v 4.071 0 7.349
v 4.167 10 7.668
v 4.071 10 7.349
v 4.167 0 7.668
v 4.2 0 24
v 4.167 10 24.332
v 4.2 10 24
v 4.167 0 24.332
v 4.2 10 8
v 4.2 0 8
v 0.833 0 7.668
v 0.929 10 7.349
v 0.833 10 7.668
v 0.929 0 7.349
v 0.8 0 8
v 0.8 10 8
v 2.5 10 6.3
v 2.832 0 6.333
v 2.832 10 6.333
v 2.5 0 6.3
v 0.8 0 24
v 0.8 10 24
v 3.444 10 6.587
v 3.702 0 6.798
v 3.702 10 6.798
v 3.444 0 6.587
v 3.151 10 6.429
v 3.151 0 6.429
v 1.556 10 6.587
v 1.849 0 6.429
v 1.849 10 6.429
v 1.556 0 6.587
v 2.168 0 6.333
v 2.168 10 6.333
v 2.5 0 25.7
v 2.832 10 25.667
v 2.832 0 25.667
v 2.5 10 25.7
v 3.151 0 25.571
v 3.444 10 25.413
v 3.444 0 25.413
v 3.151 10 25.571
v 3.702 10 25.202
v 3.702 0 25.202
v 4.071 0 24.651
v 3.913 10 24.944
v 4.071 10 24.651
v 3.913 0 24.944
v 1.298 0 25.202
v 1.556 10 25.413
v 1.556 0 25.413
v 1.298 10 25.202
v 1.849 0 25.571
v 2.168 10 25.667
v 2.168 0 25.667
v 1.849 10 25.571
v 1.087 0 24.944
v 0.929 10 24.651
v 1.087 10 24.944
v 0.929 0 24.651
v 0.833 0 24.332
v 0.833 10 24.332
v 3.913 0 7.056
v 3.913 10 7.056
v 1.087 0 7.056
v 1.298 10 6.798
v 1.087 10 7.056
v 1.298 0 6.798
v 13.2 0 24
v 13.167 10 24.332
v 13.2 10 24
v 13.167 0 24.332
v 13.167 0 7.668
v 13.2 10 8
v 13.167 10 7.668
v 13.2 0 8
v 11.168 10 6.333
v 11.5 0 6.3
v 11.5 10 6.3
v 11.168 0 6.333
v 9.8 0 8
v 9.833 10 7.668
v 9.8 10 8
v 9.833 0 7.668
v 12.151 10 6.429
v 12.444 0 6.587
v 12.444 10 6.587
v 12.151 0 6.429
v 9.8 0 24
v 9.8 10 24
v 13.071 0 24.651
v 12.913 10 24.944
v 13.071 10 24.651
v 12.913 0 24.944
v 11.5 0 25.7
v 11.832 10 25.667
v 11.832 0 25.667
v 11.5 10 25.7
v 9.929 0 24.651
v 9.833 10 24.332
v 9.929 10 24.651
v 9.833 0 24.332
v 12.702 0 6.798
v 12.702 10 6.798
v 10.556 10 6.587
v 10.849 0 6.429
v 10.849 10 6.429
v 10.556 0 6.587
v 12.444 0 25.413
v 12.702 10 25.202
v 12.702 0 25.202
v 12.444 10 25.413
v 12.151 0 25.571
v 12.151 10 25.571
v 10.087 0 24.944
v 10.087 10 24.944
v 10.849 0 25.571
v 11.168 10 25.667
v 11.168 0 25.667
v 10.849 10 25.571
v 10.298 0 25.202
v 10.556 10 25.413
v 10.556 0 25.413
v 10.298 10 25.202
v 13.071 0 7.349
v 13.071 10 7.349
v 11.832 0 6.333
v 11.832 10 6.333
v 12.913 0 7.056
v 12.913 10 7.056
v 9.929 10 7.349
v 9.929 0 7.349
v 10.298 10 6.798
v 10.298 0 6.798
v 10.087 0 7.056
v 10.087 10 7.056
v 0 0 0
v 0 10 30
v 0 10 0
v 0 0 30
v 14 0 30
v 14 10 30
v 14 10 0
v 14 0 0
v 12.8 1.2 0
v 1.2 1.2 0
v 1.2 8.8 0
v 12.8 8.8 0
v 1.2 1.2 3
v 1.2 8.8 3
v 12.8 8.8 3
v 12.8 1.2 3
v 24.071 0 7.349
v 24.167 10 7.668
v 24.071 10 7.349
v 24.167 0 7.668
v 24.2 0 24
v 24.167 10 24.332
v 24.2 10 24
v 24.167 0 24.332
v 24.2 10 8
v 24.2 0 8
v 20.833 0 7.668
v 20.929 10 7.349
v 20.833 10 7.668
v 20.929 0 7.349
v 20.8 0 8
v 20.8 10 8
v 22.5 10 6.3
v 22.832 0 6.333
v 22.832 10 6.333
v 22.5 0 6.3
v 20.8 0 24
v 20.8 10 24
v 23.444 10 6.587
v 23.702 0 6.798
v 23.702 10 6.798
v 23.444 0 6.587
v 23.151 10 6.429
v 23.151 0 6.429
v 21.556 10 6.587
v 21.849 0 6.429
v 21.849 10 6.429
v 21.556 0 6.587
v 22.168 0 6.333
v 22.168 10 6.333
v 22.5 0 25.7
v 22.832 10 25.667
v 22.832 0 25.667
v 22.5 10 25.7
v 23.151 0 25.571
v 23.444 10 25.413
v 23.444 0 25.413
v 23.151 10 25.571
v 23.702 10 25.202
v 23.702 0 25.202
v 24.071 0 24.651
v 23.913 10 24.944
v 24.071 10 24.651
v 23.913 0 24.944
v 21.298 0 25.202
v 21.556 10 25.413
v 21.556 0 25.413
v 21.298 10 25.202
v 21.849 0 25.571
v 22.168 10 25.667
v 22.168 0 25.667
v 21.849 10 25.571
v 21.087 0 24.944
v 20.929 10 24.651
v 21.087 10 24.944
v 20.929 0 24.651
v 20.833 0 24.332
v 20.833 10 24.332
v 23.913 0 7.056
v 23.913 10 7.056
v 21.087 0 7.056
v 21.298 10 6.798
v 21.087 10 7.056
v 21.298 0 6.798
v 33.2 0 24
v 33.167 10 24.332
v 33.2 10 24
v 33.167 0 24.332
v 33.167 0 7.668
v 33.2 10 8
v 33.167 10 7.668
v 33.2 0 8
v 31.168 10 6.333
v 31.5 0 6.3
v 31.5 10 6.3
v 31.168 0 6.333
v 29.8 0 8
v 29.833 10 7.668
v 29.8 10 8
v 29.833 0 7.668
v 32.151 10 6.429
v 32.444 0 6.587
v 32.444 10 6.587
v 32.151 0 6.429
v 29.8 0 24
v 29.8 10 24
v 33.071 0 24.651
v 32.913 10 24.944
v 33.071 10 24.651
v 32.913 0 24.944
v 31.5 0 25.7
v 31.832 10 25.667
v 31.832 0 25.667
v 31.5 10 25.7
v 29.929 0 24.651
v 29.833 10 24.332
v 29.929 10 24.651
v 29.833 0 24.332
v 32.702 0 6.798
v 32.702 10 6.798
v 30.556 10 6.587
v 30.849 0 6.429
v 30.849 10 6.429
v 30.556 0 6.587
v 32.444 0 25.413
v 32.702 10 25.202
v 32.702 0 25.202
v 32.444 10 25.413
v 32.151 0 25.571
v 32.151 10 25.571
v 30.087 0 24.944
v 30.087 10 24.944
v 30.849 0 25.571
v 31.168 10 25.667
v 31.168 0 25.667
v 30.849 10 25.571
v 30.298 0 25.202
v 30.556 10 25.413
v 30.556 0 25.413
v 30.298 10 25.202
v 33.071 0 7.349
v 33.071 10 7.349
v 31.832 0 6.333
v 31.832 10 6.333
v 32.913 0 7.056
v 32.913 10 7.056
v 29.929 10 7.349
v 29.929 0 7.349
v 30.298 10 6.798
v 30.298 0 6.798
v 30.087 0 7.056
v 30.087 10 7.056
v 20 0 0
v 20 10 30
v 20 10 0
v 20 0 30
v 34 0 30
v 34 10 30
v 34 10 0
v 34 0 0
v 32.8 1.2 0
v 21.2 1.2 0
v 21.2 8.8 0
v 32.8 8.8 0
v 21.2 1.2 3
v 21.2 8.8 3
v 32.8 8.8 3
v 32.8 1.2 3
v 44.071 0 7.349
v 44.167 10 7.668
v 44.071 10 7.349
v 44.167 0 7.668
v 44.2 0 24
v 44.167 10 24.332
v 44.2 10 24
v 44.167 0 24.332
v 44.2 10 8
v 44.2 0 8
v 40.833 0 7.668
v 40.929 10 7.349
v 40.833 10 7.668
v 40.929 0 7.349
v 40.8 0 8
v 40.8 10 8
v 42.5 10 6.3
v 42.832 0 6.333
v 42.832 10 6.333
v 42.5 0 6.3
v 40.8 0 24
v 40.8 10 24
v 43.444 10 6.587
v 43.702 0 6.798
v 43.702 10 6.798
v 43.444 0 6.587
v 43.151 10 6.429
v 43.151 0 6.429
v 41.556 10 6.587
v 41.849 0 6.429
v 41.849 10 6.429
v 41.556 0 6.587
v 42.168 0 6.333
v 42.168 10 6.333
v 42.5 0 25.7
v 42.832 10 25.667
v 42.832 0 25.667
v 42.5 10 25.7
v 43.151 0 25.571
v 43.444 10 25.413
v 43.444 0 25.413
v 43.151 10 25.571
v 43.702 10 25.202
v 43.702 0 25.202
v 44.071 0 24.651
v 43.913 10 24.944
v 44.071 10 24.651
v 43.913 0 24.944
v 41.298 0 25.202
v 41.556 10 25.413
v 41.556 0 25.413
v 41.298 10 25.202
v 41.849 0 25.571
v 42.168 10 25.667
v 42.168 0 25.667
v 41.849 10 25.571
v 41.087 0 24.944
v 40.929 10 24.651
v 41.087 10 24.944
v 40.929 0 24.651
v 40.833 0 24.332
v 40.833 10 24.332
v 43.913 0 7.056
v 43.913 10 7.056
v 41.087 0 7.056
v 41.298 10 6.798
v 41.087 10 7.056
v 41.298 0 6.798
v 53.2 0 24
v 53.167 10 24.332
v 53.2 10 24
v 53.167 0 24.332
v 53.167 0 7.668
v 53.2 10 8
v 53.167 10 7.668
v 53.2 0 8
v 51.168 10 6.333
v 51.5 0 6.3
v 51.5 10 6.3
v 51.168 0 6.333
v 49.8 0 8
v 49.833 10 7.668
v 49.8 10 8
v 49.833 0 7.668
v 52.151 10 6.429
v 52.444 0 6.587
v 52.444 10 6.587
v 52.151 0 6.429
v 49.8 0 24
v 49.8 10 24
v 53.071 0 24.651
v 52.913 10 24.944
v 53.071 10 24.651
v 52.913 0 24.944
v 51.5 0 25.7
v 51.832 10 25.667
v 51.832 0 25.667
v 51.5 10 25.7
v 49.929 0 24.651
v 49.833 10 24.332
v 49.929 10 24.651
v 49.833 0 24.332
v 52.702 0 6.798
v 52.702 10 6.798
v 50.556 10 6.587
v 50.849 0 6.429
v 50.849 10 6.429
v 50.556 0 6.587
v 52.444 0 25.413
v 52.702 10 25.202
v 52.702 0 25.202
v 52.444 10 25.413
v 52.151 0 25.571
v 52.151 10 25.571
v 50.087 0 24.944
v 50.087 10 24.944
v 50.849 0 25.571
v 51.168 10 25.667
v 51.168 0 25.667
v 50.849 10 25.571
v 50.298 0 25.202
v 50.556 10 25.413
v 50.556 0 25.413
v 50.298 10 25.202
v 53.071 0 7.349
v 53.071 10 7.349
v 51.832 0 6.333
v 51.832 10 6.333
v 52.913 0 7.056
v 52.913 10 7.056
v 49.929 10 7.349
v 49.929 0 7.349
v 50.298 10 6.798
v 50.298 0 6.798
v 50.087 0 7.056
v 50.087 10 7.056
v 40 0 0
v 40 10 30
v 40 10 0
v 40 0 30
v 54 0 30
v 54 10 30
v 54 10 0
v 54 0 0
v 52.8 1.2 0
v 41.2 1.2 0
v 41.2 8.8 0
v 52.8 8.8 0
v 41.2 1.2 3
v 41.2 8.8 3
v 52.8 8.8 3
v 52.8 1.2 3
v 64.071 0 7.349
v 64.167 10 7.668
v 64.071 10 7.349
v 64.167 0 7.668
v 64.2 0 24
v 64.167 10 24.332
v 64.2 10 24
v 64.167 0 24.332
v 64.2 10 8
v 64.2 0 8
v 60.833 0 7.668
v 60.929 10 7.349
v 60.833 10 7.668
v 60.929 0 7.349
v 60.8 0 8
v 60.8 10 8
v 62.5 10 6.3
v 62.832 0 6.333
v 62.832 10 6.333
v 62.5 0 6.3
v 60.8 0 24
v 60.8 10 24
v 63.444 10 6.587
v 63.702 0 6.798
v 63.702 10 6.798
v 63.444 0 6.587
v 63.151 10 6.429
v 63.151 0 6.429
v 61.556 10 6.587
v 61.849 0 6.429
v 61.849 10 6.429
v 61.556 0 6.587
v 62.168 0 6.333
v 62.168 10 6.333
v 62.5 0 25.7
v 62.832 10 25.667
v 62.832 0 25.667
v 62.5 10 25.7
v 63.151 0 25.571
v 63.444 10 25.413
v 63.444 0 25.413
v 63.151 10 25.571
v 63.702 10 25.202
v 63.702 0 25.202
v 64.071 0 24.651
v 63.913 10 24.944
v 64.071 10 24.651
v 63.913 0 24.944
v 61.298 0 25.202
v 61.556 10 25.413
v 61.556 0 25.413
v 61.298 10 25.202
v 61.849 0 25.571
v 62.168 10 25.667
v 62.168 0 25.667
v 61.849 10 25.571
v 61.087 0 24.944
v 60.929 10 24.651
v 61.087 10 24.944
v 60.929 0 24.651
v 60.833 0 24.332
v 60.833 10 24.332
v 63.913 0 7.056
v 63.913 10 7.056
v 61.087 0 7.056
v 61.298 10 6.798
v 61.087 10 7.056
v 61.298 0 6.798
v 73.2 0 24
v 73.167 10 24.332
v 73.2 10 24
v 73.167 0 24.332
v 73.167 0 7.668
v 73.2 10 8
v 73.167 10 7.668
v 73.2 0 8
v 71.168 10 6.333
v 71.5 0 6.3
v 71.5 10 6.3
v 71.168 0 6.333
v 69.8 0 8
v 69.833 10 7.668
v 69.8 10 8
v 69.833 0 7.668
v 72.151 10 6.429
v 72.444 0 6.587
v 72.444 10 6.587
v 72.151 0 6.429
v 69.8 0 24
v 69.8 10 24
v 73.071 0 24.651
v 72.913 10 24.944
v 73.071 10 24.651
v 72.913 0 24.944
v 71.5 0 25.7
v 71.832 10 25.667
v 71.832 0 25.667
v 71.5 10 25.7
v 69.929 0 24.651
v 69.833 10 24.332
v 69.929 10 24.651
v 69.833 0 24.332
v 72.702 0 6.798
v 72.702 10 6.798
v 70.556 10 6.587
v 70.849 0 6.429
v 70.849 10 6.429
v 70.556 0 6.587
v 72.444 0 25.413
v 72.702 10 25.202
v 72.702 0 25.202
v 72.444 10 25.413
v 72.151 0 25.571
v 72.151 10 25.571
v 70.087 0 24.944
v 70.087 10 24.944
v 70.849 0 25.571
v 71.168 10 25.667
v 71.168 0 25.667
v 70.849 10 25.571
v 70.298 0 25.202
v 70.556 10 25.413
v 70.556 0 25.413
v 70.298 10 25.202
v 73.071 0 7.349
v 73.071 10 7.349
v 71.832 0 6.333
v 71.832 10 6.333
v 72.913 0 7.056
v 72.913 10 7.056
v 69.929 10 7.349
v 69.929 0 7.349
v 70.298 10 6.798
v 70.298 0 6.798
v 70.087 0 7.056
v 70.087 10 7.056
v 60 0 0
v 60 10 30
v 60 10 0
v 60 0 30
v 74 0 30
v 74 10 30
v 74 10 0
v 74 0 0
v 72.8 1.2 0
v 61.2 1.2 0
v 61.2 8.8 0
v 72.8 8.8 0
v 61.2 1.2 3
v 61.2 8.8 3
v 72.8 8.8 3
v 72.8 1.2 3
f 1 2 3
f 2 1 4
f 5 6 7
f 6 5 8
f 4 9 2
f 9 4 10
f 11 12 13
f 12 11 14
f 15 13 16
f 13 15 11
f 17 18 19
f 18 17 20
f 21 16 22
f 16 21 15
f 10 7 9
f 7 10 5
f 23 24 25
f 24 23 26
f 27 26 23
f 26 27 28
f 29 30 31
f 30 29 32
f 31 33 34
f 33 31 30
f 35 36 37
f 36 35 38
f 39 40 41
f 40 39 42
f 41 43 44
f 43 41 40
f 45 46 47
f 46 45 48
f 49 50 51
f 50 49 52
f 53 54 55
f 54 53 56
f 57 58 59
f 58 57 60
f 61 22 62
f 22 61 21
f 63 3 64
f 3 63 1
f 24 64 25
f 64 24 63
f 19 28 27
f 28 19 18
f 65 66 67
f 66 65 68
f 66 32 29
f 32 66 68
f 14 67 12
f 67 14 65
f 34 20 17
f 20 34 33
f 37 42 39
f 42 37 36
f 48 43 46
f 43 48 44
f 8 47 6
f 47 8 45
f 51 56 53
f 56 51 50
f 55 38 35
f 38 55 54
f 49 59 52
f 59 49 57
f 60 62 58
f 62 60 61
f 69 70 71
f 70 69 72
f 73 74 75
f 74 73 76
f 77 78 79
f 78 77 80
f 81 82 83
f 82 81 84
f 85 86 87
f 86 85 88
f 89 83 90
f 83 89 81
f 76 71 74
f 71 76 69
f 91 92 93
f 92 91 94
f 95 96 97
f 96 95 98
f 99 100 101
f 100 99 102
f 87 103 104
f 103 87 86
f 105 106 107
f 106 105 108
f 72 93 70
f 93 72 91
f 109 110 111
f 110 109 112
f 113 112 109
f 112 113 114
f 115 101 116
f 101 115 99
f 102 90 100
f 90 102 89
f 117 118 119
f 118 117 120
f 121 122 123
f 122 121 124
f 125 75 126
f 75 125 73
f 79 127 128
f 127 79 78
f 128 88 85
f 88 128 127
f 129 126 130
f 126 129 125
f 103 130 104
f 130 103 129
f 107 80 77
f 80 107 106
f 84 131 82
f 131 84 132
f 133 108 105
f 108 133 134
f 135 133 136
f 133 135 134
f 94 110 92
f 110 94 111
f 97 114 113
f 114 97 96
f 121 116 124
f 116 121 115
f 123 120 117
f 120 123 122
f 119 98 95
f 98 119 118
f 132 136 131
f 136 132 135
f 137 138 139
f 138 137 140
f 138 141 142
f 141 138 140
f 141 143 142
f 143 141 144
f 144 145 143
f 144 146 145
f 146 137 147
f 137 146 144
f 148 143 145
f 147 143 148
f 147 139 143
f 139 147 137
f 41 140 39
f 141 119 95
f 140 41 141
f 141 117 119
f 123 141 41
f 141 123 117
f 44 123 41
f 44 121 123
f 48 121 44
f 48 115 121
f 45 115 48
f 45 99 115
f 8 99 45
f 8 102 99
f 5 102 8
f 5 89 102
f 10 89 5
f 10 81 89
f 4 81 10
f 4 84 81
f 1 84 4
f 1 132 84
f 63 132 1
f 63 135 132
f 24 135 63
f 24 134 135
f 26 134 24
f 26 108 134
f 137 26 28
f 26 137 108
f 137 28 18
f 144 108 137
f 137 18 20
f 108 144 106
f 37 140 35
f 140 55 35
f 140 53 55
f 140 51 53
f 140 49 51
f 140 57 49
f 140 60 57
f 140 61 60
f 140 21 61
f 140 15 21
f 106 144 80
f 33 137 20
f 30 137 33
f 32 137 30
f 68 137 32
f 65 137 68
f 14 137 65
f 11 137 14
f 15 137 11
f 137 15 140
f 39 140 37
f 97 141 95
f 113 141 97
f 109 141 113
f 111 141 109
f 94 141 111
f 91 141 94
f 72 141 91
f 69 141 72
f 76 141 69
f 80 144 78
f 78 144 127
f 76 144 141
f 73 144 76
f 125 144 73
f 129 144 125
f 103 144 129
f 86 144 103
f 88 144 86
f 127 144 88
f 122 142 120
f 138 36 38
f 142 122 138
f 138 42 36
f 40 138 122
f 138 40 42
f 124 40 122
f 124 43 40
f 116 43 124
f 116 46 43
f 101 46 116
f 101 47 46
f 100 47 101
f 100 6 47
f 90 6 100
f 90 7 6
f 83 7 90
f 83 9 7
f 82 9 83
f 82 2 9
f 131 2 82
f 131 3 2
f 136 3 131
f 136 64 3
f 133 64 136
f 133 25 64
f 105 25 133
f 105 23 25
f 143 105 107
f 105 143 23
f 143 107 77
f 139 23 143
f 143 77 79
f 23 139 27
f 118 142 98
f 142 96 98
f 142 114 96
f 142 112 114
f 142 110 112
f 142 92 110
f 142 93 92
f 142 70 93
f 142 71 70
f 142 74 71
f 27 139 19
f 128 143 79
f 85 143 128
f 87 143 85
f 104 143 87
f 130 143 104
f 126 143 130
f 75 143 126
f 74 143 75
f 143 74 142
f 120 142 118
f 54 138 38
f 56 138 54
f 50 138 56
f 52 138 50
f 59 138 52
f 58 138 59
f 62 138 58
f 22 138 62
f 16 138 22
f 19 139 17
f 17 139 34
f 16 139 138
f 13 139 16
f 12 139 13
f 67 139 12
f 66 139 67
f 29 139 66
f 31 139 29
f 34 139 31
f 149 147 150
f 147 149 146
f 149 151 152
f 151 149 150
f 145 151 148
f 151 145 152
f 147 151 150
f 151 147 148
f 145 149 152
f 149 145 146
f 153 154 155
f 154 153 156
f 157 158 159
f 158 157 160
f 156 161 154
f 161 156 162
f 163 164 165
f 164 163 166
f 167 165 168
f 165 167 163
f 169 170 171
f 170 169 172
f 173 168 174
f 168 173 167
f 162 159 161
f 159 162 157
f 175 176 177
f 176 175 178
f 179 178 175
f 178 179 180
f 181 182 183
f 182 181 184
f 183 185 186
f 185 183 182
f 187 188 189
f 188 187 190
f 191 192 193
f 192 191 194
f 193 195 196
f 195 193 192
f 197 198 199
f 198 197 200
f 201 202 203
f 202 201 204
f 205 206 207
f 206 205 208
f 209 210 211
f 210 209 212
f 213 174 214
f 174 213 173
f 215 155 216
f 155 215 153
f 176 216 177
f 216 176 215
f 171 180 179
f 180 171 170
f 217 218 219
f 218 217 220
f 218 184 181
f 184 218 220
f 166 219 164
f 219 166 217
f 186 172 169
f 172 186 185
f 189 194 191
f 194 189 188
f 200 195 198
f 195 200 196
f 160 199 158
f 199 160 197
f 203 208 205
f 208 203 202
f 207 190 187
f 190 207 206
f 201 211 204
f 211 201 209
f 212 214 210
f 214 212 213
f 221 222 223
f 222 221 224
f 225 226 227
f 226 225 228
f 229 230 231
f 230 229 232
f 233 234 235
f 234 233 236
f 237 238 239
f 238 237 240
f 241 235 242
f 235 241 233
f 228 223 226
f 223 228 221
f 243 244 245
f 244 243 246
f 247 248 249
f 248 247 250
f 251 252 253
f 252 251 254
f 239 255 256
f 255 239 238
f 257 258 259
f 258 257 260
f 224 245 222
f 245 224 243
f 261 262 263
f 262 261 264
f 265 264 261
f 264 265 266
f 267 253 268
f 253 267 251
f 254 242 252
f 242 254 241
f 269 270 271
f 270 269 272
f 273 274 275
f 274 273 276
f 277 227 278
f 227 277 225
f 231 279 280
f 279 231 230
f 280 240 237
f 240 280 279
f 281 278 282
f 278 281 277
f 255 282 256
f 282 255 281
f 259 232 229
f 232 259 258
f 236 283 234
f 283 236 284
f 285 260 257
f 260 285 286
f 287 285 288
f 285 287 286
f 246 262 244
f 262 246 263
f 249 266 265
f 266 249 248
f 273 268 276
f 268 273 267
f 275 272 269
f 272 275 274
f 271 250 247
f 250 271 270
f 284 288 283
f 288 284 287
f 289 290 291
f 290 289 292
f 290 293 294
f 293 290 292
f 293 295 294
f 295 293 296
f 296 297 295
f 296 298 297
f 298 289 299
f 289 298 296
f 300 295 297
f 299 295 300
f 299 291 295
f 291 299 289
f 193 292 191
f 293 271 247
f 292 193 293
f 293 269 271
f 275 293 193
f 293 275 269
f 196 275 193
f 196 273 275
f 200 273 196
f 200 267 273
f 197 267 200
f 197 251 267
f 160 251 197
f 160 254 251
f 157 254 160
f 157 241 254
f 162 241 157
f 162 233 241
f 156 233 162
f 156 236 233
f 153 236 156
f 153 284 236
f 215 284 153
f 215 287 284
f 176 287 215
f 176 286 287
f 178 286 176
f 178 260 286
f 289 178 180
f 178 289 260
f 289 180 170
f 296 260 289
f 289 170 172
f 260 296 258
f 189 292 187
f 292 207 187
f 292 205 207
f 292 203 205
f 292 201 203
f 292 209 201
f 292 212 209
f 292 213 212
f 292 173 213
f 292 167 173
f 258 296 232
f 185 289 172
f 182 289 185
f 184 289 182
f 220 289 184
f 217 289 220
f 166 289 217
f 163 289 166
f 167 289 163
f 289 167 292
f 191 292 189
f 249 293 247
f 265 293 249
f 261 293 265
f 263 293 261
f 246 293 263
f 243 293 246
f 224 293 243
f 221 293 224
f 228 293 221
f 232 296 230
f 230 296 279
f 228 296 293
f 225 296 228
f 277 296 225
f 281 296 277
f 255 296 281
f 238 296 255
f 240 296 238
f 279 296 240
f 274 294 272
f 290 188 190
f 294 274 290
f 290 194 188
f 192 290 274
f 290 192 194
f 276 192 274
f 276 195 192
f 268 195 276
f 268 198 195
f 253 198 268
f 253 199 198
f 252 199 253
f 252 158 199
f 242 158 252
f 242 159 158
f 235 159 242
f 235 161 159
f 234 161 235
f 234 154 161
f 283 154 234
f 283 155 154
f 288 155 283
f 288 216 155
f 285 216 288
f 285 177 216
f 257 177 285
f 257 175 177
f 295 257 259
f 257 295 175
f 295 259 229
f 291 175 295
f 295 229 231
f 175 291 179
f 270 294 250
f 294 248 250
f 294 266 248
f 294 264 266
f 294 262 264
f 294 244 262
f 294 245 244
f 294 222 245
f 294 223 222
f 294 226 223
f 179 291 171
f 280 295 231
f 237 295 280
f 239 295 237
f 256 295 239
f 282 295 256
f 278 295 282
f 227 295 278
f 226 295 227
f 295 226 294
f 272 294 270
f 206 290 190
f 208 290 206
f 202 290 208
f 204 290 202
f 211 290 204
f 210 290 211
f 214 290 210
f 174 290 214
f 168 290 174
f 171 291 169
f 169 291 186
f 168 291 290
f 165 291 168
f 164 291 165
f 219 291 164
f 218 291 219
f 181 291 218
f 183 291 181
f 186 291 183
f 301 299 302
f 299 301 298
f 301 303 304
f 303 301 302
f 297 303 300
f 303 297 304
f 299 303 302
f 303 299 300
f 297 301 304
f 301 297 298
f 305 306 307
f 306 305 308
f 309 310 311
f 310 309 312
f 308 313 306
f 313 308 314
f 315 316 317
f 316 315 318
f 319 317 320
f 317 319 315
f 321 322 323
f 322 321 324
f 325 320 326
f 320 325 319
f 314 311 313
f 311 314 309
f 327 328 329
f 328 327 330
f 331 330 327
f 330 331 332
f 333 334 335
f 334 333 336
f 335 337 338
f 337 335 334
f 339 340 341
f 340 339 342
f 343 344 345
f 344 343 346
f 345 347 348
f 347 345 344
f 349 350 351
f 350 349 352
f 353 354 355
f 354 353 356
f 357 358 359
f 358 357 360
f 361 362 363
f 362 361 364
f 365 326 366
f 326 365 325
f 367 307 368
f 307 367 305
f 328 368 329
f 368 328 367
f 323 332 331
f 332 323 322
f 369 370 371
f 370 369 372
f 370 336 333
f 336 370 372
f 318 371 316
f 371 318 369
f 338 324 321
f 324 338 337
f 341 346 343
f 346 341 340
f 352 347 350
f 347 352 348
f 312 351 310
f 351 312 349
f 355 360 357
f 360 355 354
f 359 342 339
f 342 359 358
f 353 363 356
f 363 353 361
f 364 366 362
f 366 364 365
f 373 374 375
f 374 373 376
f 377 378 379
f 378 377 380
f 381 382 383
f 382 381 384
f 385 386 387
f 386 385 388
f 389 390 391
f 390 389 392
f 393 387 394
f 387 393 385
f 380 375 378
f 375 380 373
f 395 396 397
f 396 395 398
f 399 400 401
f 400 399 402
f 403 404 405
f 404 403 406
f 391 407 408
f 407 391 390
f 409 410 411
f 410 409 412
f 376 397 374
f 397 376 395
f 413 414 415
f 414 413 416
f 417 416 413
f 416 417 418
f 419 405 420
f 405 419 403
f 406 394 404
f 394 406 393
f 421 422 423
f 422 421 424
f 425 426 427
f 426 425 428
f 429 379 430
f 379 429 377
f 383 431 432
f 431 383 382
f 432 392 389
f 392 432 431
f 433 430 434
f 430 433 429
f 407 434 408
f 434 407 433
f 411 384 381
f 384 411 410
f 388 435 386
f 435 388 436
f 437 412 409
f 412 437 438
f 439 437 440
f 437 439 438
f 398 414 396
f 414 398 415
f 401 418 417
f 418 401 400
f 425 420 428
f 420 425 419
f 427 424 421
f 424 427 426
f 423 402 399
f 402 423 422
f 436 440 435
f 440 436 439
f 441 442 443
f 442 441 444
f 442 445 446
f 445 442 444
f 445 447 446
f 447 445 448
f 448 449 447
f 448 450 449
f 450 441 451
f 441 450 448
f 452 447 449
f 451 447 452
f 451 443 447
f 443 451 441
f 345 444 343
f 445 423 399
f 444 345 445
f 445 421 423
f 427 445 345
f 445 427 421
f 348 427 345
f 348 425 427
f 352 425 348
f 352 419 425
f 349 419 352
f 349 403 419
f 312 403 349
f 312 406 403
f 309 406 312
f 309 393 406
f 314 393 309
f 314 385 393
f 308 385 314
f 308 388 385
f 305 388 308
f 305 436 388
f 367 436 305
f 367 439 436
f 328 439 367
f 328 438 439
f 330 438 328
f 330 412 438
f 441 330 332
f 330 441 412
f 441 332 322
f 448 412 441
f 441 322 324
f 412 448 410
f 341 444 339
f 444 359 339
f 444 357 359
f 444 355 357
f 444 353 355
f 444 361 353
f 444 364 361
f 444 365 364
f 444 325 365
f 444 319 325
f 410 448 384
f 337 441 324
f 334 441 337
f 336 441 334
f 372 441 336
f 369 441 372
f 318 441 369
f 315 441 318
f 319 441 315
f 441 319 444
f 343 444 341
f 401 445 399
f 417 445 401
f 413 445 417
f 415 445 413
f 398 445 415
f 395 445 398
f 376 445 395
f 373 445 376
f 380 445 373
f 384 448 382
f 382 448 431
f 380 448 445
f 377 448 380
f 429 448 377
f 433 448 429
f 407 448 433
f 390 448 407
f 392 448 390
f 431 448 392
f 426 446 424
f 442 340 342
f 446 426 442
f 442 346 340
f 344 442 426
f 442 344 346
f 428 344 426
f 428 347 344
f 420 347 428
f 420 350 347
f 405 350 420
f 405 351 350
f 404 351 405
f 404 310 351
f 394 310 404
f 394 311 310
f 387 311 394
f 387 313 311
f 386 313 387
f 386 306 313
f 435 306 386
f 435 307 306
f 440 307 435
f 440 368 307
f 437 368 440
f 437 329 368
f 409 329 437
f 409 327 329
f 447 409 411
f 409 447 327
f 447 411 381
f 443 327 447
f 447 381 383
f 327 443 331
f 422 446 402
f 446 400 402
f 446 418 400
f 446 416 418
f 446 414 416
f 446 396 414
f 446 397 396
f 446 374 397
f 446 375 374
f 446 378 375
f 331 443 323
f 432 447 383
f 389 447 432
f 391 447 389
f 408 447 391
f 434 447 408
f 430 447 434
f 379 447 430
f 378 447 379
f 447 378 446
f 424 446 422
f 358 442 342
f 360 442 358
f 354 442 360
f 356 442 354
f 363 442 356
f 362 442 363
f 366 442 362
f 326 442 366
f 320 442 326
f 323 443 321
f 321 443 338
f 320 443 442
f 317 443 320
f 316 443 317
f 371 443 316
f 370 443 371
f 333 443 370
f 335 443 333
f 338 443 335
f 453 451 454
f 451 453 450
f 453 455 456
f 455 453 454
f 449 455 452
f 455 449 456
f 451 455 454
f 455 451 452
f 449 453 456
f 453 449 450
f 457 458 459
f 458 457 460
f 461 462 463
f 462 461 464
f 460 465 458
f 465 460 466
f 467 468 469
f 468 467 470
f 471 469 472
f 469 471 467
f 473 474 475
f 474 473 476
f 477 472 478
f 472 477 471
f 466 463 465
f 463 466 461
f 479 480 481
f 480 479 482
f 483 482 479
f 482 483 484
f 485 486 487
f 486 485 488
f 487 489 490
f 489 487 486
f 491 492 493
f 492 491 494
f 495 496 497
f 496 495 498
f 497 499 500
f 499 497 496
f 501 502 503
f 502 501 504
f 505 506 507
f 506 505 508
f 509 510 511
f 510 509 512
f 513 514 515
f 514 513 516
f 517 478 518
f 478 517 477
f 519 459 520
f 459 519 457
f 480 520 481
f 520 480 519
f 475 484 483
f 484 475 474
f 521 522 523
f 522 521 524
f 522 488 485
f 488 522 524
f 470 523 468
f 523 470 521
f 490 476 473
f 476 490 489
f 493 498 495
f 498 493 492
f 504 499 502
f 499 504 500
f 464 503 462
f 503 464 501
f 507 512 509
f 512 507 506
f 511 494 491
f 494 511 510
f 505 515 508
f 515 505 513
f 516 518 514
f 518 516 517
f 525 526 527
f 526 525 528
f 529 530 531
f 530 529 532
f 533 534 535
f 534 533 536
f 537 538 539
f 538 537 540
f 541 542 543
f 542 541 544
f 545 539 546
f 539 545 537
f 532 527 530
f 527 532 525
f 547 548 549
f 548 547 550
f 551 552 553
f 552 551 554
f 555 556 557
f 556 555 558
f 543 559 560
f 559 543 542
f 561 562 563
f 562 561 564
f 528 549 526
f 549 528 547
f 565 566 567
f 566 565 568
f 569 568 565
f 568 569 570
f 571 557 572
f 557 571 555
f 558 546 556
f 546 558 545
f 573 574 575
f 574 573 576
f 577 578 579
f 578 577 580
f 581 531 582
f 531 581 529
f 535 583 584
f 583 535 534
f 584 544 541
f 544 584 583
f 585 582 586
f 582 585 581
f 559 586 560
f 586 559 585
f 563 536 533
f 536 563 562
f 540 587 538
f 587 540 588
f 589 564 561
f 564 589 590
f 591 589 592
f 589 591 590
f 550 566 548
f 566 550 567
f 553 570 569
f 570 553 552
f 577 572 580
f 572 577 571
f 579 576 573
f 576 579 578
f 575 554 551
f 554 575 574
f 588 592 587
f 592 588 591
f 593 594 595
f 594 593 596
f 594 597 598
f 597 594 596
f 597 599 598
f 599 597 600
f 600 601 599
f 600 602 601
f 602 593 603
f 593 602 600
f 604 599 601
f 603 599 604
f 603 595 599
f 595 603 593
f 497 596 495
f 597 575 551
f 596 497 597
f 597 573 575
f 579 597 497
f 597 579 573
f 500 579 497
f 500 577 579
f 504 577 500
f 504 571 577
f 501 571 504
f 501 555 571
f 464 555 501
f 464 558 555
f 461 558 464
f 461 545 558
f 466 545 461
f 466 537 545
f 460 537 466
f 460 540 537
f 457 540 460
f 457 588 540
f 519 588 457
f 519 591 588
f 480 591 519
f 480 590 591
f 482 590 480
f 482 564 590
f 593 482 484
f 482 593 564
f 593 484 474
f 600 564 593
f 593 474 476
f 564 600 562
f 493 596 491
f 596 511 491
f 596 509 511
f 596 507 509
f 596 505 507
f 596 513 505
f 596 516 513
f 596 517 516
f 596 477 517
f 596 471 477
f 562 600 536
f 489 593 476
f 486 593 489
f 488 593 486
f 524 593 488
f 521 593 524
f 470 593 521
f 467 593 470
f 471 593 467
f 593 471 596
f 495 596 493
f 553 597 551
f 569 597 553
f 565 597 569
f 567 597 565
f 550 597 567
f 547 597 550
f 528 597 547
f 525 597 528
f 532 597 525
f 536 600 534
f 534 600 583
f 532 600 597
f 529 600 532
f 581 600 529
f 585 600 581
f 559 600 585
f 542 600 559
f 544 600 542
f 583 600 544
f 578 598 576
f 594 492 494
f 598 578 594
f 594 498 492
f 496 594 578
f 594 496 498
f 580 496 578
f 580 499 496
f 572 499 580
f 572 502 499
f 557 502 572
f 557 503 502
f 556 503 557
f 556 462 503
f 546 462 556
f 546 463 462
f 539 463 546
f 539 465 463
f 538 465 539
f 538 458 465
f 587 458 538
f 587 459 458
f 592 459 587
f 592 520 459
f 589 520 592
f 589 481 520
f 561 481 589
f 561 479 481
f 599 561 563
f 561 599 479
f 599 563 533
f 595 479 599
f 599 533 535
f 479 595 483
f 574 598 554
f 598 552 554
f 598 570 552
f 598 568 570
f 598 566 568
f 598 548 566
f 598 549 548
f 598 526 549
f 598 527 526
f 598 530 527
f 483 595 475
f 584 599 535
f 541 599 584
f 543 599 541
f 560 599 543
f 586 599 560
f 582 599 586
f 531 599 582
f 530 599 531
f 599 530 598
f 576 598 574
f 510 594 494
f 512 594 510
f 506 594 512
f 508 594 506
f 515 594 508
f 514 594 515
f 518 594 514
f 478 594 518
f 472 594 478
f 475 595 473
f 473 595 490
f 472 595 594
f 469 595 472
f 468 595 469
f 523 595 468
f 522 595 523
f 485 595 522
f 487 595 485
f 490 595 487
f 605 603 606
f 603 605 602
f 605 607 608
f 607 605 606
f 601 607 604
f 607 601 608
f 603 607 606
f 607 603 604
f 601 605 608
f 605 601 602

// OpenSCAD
// file: stop_block_lib.scad
//=============================================================================
// stop_block_lib.scad —— 挡件【只有参数 + 模块】，顶层不画东西
//
// 为什么单独拆出这个文件：
//   OpenSCAD 的 `use <file>` **只导入模块/函数，不导入顶层变量**。
//   挡件的 stop_block() 依赖 W/D/H/SLOT_* 这些顶层参数，用 `use` 会读成 0，
//   几何直接退化。所以拆成 lib，让需要它的文件用 `include`（参数一起进来），
//   而 lib 顶层没有任何几何 -> 不会在别的文件里冒出多余零件。
//
// 单独打印挡件请用 stop_block.scad（它 include 本文件并排 4 个）。
//=============================================================================

// ---------------- 参数 ----------------
W        = 14;    // X：沿腿摆动方向（接触宽度）
D        = 10;    // Y：伸出墙外的厚度（也是螺丝穿过的长度）
H        = 30;    // Z：总高（调节范围靠中间的长槽）
RUB_T    = 3;     // 橡胶垫厚度
LIP      = 1.2;   // 橡胶槽挡边
SLOT_W   = 3.4;   // M3 过孔宽（φ3.4 = M3 松配合）
SLOT_L   = 16;    // 竖向长槽长度 = 高度可调范围
SLOT_Z0  = 8;     // 长槽下端离底面
SCREW_Y  = 4.5;   // 两孔中心 ±（与车身凸台一致）
CH       = 1.0;   // 顶边倒角

$fn = 32;

//=============================================================================
module stop_block() {
    difference() {
        // 主体
        cube([W, D, H]);

        // 2 个竖向长槽（沿 Y 贯穿、沿 Z 可调）——松开螺丝上下滑
        for (sx = [-1, 1])
            translate([W/2 + sx*SCREW_Y, 0, SLOT_Z0])
                hull() {
                    translate([0, -0.02, 0])     rotate([-90, 0, 0]) cylinder(d = SLOT_W, h = D + 0.04);
                    translate([0, -0.02, SLOT_L]) rotate([-90, 0, 0]) cylinder(d = SLOT_W, h = D + 0.04);
                }

        // 底面橡胶槽（四周留 LIP 挡边，橡胶塞进去不会掉）
        translate([LIP, LIP, -0.01])
            cube([W - 2*LIP, D - 2*LIP, RUB_T + 0.01]);
    }
}
// main file
//=============================================================================
// stop_block.scad —— 挡件 v2（每腿 1 个，×4）
//
// ★ v2 为什么和 v1 不一样：
//   v1 是「从底板下面竖着拧 2 颗螺丝」——但腿在【墙外】转，挡件必须装在墙外，
//   底板够不着。v5 车身改成在侧壁外面做 16×14×6 的凸台 + 2 个 M3 底孔，
//   所以挡件改成【横着拧进凸台】。
//
// ★ 高度怎么调：螺丝孔做成【竖向长槽 16mm】，松开螺丝上下滑动 →
//   不用垫片，±8mm 连续可调（v1 的垫片方案作废）。
//
// 配合车身（mech/body_v5.scad 的 stop_boss / stop_boss_holes）：
//     凸台  16(X) × 6(Y) × 14(Z)，外表面 y = 81（W/2+6）
//     底孔  φ2.8，z = 30，x = ±55 ± 4.5（孔距 9）
//
// 装法：
//   1) 挡件贴凸台外表面（y=81），伸出墙外到 y=91
//   2) 2× M3×16 自攻，从挡件外侧拧进去（穿过挡件 10mm + 凸台 6mm）
//   3) 底面贴 3mm 橡胶（槽带 1.2 挡边，橡胶不会掉）
//   4) 松开螺丝 → 上下滑到"腿在工作角 45° 时刚好顶住" → 拧紧
//
// 受力：约 8.4 N（0.85 kg），PETG 100% 填充余量很大 ✓
//
// 打印：PETG / 0.2 / 100% 填充 / 底面朝下平躺 / 无支撑
//=============================================================================

// ---------------- 参数 + 模块（都在 lib 里）----------------
//   用 include 而不是 use：use 不导入顶层变量，挡件会读成 W=D=H=0。
include <stop_block_lib.scad>

SHOW_ALL = true;  // true = 一次排 4 个（方便一次打完）

// 4 个一排（间距 20）
if (SHOW_ALL)
    for (i = [0 : 3]) translate([i * (W + 6), 0, 0]) stop_block();
else
    stop_block();
